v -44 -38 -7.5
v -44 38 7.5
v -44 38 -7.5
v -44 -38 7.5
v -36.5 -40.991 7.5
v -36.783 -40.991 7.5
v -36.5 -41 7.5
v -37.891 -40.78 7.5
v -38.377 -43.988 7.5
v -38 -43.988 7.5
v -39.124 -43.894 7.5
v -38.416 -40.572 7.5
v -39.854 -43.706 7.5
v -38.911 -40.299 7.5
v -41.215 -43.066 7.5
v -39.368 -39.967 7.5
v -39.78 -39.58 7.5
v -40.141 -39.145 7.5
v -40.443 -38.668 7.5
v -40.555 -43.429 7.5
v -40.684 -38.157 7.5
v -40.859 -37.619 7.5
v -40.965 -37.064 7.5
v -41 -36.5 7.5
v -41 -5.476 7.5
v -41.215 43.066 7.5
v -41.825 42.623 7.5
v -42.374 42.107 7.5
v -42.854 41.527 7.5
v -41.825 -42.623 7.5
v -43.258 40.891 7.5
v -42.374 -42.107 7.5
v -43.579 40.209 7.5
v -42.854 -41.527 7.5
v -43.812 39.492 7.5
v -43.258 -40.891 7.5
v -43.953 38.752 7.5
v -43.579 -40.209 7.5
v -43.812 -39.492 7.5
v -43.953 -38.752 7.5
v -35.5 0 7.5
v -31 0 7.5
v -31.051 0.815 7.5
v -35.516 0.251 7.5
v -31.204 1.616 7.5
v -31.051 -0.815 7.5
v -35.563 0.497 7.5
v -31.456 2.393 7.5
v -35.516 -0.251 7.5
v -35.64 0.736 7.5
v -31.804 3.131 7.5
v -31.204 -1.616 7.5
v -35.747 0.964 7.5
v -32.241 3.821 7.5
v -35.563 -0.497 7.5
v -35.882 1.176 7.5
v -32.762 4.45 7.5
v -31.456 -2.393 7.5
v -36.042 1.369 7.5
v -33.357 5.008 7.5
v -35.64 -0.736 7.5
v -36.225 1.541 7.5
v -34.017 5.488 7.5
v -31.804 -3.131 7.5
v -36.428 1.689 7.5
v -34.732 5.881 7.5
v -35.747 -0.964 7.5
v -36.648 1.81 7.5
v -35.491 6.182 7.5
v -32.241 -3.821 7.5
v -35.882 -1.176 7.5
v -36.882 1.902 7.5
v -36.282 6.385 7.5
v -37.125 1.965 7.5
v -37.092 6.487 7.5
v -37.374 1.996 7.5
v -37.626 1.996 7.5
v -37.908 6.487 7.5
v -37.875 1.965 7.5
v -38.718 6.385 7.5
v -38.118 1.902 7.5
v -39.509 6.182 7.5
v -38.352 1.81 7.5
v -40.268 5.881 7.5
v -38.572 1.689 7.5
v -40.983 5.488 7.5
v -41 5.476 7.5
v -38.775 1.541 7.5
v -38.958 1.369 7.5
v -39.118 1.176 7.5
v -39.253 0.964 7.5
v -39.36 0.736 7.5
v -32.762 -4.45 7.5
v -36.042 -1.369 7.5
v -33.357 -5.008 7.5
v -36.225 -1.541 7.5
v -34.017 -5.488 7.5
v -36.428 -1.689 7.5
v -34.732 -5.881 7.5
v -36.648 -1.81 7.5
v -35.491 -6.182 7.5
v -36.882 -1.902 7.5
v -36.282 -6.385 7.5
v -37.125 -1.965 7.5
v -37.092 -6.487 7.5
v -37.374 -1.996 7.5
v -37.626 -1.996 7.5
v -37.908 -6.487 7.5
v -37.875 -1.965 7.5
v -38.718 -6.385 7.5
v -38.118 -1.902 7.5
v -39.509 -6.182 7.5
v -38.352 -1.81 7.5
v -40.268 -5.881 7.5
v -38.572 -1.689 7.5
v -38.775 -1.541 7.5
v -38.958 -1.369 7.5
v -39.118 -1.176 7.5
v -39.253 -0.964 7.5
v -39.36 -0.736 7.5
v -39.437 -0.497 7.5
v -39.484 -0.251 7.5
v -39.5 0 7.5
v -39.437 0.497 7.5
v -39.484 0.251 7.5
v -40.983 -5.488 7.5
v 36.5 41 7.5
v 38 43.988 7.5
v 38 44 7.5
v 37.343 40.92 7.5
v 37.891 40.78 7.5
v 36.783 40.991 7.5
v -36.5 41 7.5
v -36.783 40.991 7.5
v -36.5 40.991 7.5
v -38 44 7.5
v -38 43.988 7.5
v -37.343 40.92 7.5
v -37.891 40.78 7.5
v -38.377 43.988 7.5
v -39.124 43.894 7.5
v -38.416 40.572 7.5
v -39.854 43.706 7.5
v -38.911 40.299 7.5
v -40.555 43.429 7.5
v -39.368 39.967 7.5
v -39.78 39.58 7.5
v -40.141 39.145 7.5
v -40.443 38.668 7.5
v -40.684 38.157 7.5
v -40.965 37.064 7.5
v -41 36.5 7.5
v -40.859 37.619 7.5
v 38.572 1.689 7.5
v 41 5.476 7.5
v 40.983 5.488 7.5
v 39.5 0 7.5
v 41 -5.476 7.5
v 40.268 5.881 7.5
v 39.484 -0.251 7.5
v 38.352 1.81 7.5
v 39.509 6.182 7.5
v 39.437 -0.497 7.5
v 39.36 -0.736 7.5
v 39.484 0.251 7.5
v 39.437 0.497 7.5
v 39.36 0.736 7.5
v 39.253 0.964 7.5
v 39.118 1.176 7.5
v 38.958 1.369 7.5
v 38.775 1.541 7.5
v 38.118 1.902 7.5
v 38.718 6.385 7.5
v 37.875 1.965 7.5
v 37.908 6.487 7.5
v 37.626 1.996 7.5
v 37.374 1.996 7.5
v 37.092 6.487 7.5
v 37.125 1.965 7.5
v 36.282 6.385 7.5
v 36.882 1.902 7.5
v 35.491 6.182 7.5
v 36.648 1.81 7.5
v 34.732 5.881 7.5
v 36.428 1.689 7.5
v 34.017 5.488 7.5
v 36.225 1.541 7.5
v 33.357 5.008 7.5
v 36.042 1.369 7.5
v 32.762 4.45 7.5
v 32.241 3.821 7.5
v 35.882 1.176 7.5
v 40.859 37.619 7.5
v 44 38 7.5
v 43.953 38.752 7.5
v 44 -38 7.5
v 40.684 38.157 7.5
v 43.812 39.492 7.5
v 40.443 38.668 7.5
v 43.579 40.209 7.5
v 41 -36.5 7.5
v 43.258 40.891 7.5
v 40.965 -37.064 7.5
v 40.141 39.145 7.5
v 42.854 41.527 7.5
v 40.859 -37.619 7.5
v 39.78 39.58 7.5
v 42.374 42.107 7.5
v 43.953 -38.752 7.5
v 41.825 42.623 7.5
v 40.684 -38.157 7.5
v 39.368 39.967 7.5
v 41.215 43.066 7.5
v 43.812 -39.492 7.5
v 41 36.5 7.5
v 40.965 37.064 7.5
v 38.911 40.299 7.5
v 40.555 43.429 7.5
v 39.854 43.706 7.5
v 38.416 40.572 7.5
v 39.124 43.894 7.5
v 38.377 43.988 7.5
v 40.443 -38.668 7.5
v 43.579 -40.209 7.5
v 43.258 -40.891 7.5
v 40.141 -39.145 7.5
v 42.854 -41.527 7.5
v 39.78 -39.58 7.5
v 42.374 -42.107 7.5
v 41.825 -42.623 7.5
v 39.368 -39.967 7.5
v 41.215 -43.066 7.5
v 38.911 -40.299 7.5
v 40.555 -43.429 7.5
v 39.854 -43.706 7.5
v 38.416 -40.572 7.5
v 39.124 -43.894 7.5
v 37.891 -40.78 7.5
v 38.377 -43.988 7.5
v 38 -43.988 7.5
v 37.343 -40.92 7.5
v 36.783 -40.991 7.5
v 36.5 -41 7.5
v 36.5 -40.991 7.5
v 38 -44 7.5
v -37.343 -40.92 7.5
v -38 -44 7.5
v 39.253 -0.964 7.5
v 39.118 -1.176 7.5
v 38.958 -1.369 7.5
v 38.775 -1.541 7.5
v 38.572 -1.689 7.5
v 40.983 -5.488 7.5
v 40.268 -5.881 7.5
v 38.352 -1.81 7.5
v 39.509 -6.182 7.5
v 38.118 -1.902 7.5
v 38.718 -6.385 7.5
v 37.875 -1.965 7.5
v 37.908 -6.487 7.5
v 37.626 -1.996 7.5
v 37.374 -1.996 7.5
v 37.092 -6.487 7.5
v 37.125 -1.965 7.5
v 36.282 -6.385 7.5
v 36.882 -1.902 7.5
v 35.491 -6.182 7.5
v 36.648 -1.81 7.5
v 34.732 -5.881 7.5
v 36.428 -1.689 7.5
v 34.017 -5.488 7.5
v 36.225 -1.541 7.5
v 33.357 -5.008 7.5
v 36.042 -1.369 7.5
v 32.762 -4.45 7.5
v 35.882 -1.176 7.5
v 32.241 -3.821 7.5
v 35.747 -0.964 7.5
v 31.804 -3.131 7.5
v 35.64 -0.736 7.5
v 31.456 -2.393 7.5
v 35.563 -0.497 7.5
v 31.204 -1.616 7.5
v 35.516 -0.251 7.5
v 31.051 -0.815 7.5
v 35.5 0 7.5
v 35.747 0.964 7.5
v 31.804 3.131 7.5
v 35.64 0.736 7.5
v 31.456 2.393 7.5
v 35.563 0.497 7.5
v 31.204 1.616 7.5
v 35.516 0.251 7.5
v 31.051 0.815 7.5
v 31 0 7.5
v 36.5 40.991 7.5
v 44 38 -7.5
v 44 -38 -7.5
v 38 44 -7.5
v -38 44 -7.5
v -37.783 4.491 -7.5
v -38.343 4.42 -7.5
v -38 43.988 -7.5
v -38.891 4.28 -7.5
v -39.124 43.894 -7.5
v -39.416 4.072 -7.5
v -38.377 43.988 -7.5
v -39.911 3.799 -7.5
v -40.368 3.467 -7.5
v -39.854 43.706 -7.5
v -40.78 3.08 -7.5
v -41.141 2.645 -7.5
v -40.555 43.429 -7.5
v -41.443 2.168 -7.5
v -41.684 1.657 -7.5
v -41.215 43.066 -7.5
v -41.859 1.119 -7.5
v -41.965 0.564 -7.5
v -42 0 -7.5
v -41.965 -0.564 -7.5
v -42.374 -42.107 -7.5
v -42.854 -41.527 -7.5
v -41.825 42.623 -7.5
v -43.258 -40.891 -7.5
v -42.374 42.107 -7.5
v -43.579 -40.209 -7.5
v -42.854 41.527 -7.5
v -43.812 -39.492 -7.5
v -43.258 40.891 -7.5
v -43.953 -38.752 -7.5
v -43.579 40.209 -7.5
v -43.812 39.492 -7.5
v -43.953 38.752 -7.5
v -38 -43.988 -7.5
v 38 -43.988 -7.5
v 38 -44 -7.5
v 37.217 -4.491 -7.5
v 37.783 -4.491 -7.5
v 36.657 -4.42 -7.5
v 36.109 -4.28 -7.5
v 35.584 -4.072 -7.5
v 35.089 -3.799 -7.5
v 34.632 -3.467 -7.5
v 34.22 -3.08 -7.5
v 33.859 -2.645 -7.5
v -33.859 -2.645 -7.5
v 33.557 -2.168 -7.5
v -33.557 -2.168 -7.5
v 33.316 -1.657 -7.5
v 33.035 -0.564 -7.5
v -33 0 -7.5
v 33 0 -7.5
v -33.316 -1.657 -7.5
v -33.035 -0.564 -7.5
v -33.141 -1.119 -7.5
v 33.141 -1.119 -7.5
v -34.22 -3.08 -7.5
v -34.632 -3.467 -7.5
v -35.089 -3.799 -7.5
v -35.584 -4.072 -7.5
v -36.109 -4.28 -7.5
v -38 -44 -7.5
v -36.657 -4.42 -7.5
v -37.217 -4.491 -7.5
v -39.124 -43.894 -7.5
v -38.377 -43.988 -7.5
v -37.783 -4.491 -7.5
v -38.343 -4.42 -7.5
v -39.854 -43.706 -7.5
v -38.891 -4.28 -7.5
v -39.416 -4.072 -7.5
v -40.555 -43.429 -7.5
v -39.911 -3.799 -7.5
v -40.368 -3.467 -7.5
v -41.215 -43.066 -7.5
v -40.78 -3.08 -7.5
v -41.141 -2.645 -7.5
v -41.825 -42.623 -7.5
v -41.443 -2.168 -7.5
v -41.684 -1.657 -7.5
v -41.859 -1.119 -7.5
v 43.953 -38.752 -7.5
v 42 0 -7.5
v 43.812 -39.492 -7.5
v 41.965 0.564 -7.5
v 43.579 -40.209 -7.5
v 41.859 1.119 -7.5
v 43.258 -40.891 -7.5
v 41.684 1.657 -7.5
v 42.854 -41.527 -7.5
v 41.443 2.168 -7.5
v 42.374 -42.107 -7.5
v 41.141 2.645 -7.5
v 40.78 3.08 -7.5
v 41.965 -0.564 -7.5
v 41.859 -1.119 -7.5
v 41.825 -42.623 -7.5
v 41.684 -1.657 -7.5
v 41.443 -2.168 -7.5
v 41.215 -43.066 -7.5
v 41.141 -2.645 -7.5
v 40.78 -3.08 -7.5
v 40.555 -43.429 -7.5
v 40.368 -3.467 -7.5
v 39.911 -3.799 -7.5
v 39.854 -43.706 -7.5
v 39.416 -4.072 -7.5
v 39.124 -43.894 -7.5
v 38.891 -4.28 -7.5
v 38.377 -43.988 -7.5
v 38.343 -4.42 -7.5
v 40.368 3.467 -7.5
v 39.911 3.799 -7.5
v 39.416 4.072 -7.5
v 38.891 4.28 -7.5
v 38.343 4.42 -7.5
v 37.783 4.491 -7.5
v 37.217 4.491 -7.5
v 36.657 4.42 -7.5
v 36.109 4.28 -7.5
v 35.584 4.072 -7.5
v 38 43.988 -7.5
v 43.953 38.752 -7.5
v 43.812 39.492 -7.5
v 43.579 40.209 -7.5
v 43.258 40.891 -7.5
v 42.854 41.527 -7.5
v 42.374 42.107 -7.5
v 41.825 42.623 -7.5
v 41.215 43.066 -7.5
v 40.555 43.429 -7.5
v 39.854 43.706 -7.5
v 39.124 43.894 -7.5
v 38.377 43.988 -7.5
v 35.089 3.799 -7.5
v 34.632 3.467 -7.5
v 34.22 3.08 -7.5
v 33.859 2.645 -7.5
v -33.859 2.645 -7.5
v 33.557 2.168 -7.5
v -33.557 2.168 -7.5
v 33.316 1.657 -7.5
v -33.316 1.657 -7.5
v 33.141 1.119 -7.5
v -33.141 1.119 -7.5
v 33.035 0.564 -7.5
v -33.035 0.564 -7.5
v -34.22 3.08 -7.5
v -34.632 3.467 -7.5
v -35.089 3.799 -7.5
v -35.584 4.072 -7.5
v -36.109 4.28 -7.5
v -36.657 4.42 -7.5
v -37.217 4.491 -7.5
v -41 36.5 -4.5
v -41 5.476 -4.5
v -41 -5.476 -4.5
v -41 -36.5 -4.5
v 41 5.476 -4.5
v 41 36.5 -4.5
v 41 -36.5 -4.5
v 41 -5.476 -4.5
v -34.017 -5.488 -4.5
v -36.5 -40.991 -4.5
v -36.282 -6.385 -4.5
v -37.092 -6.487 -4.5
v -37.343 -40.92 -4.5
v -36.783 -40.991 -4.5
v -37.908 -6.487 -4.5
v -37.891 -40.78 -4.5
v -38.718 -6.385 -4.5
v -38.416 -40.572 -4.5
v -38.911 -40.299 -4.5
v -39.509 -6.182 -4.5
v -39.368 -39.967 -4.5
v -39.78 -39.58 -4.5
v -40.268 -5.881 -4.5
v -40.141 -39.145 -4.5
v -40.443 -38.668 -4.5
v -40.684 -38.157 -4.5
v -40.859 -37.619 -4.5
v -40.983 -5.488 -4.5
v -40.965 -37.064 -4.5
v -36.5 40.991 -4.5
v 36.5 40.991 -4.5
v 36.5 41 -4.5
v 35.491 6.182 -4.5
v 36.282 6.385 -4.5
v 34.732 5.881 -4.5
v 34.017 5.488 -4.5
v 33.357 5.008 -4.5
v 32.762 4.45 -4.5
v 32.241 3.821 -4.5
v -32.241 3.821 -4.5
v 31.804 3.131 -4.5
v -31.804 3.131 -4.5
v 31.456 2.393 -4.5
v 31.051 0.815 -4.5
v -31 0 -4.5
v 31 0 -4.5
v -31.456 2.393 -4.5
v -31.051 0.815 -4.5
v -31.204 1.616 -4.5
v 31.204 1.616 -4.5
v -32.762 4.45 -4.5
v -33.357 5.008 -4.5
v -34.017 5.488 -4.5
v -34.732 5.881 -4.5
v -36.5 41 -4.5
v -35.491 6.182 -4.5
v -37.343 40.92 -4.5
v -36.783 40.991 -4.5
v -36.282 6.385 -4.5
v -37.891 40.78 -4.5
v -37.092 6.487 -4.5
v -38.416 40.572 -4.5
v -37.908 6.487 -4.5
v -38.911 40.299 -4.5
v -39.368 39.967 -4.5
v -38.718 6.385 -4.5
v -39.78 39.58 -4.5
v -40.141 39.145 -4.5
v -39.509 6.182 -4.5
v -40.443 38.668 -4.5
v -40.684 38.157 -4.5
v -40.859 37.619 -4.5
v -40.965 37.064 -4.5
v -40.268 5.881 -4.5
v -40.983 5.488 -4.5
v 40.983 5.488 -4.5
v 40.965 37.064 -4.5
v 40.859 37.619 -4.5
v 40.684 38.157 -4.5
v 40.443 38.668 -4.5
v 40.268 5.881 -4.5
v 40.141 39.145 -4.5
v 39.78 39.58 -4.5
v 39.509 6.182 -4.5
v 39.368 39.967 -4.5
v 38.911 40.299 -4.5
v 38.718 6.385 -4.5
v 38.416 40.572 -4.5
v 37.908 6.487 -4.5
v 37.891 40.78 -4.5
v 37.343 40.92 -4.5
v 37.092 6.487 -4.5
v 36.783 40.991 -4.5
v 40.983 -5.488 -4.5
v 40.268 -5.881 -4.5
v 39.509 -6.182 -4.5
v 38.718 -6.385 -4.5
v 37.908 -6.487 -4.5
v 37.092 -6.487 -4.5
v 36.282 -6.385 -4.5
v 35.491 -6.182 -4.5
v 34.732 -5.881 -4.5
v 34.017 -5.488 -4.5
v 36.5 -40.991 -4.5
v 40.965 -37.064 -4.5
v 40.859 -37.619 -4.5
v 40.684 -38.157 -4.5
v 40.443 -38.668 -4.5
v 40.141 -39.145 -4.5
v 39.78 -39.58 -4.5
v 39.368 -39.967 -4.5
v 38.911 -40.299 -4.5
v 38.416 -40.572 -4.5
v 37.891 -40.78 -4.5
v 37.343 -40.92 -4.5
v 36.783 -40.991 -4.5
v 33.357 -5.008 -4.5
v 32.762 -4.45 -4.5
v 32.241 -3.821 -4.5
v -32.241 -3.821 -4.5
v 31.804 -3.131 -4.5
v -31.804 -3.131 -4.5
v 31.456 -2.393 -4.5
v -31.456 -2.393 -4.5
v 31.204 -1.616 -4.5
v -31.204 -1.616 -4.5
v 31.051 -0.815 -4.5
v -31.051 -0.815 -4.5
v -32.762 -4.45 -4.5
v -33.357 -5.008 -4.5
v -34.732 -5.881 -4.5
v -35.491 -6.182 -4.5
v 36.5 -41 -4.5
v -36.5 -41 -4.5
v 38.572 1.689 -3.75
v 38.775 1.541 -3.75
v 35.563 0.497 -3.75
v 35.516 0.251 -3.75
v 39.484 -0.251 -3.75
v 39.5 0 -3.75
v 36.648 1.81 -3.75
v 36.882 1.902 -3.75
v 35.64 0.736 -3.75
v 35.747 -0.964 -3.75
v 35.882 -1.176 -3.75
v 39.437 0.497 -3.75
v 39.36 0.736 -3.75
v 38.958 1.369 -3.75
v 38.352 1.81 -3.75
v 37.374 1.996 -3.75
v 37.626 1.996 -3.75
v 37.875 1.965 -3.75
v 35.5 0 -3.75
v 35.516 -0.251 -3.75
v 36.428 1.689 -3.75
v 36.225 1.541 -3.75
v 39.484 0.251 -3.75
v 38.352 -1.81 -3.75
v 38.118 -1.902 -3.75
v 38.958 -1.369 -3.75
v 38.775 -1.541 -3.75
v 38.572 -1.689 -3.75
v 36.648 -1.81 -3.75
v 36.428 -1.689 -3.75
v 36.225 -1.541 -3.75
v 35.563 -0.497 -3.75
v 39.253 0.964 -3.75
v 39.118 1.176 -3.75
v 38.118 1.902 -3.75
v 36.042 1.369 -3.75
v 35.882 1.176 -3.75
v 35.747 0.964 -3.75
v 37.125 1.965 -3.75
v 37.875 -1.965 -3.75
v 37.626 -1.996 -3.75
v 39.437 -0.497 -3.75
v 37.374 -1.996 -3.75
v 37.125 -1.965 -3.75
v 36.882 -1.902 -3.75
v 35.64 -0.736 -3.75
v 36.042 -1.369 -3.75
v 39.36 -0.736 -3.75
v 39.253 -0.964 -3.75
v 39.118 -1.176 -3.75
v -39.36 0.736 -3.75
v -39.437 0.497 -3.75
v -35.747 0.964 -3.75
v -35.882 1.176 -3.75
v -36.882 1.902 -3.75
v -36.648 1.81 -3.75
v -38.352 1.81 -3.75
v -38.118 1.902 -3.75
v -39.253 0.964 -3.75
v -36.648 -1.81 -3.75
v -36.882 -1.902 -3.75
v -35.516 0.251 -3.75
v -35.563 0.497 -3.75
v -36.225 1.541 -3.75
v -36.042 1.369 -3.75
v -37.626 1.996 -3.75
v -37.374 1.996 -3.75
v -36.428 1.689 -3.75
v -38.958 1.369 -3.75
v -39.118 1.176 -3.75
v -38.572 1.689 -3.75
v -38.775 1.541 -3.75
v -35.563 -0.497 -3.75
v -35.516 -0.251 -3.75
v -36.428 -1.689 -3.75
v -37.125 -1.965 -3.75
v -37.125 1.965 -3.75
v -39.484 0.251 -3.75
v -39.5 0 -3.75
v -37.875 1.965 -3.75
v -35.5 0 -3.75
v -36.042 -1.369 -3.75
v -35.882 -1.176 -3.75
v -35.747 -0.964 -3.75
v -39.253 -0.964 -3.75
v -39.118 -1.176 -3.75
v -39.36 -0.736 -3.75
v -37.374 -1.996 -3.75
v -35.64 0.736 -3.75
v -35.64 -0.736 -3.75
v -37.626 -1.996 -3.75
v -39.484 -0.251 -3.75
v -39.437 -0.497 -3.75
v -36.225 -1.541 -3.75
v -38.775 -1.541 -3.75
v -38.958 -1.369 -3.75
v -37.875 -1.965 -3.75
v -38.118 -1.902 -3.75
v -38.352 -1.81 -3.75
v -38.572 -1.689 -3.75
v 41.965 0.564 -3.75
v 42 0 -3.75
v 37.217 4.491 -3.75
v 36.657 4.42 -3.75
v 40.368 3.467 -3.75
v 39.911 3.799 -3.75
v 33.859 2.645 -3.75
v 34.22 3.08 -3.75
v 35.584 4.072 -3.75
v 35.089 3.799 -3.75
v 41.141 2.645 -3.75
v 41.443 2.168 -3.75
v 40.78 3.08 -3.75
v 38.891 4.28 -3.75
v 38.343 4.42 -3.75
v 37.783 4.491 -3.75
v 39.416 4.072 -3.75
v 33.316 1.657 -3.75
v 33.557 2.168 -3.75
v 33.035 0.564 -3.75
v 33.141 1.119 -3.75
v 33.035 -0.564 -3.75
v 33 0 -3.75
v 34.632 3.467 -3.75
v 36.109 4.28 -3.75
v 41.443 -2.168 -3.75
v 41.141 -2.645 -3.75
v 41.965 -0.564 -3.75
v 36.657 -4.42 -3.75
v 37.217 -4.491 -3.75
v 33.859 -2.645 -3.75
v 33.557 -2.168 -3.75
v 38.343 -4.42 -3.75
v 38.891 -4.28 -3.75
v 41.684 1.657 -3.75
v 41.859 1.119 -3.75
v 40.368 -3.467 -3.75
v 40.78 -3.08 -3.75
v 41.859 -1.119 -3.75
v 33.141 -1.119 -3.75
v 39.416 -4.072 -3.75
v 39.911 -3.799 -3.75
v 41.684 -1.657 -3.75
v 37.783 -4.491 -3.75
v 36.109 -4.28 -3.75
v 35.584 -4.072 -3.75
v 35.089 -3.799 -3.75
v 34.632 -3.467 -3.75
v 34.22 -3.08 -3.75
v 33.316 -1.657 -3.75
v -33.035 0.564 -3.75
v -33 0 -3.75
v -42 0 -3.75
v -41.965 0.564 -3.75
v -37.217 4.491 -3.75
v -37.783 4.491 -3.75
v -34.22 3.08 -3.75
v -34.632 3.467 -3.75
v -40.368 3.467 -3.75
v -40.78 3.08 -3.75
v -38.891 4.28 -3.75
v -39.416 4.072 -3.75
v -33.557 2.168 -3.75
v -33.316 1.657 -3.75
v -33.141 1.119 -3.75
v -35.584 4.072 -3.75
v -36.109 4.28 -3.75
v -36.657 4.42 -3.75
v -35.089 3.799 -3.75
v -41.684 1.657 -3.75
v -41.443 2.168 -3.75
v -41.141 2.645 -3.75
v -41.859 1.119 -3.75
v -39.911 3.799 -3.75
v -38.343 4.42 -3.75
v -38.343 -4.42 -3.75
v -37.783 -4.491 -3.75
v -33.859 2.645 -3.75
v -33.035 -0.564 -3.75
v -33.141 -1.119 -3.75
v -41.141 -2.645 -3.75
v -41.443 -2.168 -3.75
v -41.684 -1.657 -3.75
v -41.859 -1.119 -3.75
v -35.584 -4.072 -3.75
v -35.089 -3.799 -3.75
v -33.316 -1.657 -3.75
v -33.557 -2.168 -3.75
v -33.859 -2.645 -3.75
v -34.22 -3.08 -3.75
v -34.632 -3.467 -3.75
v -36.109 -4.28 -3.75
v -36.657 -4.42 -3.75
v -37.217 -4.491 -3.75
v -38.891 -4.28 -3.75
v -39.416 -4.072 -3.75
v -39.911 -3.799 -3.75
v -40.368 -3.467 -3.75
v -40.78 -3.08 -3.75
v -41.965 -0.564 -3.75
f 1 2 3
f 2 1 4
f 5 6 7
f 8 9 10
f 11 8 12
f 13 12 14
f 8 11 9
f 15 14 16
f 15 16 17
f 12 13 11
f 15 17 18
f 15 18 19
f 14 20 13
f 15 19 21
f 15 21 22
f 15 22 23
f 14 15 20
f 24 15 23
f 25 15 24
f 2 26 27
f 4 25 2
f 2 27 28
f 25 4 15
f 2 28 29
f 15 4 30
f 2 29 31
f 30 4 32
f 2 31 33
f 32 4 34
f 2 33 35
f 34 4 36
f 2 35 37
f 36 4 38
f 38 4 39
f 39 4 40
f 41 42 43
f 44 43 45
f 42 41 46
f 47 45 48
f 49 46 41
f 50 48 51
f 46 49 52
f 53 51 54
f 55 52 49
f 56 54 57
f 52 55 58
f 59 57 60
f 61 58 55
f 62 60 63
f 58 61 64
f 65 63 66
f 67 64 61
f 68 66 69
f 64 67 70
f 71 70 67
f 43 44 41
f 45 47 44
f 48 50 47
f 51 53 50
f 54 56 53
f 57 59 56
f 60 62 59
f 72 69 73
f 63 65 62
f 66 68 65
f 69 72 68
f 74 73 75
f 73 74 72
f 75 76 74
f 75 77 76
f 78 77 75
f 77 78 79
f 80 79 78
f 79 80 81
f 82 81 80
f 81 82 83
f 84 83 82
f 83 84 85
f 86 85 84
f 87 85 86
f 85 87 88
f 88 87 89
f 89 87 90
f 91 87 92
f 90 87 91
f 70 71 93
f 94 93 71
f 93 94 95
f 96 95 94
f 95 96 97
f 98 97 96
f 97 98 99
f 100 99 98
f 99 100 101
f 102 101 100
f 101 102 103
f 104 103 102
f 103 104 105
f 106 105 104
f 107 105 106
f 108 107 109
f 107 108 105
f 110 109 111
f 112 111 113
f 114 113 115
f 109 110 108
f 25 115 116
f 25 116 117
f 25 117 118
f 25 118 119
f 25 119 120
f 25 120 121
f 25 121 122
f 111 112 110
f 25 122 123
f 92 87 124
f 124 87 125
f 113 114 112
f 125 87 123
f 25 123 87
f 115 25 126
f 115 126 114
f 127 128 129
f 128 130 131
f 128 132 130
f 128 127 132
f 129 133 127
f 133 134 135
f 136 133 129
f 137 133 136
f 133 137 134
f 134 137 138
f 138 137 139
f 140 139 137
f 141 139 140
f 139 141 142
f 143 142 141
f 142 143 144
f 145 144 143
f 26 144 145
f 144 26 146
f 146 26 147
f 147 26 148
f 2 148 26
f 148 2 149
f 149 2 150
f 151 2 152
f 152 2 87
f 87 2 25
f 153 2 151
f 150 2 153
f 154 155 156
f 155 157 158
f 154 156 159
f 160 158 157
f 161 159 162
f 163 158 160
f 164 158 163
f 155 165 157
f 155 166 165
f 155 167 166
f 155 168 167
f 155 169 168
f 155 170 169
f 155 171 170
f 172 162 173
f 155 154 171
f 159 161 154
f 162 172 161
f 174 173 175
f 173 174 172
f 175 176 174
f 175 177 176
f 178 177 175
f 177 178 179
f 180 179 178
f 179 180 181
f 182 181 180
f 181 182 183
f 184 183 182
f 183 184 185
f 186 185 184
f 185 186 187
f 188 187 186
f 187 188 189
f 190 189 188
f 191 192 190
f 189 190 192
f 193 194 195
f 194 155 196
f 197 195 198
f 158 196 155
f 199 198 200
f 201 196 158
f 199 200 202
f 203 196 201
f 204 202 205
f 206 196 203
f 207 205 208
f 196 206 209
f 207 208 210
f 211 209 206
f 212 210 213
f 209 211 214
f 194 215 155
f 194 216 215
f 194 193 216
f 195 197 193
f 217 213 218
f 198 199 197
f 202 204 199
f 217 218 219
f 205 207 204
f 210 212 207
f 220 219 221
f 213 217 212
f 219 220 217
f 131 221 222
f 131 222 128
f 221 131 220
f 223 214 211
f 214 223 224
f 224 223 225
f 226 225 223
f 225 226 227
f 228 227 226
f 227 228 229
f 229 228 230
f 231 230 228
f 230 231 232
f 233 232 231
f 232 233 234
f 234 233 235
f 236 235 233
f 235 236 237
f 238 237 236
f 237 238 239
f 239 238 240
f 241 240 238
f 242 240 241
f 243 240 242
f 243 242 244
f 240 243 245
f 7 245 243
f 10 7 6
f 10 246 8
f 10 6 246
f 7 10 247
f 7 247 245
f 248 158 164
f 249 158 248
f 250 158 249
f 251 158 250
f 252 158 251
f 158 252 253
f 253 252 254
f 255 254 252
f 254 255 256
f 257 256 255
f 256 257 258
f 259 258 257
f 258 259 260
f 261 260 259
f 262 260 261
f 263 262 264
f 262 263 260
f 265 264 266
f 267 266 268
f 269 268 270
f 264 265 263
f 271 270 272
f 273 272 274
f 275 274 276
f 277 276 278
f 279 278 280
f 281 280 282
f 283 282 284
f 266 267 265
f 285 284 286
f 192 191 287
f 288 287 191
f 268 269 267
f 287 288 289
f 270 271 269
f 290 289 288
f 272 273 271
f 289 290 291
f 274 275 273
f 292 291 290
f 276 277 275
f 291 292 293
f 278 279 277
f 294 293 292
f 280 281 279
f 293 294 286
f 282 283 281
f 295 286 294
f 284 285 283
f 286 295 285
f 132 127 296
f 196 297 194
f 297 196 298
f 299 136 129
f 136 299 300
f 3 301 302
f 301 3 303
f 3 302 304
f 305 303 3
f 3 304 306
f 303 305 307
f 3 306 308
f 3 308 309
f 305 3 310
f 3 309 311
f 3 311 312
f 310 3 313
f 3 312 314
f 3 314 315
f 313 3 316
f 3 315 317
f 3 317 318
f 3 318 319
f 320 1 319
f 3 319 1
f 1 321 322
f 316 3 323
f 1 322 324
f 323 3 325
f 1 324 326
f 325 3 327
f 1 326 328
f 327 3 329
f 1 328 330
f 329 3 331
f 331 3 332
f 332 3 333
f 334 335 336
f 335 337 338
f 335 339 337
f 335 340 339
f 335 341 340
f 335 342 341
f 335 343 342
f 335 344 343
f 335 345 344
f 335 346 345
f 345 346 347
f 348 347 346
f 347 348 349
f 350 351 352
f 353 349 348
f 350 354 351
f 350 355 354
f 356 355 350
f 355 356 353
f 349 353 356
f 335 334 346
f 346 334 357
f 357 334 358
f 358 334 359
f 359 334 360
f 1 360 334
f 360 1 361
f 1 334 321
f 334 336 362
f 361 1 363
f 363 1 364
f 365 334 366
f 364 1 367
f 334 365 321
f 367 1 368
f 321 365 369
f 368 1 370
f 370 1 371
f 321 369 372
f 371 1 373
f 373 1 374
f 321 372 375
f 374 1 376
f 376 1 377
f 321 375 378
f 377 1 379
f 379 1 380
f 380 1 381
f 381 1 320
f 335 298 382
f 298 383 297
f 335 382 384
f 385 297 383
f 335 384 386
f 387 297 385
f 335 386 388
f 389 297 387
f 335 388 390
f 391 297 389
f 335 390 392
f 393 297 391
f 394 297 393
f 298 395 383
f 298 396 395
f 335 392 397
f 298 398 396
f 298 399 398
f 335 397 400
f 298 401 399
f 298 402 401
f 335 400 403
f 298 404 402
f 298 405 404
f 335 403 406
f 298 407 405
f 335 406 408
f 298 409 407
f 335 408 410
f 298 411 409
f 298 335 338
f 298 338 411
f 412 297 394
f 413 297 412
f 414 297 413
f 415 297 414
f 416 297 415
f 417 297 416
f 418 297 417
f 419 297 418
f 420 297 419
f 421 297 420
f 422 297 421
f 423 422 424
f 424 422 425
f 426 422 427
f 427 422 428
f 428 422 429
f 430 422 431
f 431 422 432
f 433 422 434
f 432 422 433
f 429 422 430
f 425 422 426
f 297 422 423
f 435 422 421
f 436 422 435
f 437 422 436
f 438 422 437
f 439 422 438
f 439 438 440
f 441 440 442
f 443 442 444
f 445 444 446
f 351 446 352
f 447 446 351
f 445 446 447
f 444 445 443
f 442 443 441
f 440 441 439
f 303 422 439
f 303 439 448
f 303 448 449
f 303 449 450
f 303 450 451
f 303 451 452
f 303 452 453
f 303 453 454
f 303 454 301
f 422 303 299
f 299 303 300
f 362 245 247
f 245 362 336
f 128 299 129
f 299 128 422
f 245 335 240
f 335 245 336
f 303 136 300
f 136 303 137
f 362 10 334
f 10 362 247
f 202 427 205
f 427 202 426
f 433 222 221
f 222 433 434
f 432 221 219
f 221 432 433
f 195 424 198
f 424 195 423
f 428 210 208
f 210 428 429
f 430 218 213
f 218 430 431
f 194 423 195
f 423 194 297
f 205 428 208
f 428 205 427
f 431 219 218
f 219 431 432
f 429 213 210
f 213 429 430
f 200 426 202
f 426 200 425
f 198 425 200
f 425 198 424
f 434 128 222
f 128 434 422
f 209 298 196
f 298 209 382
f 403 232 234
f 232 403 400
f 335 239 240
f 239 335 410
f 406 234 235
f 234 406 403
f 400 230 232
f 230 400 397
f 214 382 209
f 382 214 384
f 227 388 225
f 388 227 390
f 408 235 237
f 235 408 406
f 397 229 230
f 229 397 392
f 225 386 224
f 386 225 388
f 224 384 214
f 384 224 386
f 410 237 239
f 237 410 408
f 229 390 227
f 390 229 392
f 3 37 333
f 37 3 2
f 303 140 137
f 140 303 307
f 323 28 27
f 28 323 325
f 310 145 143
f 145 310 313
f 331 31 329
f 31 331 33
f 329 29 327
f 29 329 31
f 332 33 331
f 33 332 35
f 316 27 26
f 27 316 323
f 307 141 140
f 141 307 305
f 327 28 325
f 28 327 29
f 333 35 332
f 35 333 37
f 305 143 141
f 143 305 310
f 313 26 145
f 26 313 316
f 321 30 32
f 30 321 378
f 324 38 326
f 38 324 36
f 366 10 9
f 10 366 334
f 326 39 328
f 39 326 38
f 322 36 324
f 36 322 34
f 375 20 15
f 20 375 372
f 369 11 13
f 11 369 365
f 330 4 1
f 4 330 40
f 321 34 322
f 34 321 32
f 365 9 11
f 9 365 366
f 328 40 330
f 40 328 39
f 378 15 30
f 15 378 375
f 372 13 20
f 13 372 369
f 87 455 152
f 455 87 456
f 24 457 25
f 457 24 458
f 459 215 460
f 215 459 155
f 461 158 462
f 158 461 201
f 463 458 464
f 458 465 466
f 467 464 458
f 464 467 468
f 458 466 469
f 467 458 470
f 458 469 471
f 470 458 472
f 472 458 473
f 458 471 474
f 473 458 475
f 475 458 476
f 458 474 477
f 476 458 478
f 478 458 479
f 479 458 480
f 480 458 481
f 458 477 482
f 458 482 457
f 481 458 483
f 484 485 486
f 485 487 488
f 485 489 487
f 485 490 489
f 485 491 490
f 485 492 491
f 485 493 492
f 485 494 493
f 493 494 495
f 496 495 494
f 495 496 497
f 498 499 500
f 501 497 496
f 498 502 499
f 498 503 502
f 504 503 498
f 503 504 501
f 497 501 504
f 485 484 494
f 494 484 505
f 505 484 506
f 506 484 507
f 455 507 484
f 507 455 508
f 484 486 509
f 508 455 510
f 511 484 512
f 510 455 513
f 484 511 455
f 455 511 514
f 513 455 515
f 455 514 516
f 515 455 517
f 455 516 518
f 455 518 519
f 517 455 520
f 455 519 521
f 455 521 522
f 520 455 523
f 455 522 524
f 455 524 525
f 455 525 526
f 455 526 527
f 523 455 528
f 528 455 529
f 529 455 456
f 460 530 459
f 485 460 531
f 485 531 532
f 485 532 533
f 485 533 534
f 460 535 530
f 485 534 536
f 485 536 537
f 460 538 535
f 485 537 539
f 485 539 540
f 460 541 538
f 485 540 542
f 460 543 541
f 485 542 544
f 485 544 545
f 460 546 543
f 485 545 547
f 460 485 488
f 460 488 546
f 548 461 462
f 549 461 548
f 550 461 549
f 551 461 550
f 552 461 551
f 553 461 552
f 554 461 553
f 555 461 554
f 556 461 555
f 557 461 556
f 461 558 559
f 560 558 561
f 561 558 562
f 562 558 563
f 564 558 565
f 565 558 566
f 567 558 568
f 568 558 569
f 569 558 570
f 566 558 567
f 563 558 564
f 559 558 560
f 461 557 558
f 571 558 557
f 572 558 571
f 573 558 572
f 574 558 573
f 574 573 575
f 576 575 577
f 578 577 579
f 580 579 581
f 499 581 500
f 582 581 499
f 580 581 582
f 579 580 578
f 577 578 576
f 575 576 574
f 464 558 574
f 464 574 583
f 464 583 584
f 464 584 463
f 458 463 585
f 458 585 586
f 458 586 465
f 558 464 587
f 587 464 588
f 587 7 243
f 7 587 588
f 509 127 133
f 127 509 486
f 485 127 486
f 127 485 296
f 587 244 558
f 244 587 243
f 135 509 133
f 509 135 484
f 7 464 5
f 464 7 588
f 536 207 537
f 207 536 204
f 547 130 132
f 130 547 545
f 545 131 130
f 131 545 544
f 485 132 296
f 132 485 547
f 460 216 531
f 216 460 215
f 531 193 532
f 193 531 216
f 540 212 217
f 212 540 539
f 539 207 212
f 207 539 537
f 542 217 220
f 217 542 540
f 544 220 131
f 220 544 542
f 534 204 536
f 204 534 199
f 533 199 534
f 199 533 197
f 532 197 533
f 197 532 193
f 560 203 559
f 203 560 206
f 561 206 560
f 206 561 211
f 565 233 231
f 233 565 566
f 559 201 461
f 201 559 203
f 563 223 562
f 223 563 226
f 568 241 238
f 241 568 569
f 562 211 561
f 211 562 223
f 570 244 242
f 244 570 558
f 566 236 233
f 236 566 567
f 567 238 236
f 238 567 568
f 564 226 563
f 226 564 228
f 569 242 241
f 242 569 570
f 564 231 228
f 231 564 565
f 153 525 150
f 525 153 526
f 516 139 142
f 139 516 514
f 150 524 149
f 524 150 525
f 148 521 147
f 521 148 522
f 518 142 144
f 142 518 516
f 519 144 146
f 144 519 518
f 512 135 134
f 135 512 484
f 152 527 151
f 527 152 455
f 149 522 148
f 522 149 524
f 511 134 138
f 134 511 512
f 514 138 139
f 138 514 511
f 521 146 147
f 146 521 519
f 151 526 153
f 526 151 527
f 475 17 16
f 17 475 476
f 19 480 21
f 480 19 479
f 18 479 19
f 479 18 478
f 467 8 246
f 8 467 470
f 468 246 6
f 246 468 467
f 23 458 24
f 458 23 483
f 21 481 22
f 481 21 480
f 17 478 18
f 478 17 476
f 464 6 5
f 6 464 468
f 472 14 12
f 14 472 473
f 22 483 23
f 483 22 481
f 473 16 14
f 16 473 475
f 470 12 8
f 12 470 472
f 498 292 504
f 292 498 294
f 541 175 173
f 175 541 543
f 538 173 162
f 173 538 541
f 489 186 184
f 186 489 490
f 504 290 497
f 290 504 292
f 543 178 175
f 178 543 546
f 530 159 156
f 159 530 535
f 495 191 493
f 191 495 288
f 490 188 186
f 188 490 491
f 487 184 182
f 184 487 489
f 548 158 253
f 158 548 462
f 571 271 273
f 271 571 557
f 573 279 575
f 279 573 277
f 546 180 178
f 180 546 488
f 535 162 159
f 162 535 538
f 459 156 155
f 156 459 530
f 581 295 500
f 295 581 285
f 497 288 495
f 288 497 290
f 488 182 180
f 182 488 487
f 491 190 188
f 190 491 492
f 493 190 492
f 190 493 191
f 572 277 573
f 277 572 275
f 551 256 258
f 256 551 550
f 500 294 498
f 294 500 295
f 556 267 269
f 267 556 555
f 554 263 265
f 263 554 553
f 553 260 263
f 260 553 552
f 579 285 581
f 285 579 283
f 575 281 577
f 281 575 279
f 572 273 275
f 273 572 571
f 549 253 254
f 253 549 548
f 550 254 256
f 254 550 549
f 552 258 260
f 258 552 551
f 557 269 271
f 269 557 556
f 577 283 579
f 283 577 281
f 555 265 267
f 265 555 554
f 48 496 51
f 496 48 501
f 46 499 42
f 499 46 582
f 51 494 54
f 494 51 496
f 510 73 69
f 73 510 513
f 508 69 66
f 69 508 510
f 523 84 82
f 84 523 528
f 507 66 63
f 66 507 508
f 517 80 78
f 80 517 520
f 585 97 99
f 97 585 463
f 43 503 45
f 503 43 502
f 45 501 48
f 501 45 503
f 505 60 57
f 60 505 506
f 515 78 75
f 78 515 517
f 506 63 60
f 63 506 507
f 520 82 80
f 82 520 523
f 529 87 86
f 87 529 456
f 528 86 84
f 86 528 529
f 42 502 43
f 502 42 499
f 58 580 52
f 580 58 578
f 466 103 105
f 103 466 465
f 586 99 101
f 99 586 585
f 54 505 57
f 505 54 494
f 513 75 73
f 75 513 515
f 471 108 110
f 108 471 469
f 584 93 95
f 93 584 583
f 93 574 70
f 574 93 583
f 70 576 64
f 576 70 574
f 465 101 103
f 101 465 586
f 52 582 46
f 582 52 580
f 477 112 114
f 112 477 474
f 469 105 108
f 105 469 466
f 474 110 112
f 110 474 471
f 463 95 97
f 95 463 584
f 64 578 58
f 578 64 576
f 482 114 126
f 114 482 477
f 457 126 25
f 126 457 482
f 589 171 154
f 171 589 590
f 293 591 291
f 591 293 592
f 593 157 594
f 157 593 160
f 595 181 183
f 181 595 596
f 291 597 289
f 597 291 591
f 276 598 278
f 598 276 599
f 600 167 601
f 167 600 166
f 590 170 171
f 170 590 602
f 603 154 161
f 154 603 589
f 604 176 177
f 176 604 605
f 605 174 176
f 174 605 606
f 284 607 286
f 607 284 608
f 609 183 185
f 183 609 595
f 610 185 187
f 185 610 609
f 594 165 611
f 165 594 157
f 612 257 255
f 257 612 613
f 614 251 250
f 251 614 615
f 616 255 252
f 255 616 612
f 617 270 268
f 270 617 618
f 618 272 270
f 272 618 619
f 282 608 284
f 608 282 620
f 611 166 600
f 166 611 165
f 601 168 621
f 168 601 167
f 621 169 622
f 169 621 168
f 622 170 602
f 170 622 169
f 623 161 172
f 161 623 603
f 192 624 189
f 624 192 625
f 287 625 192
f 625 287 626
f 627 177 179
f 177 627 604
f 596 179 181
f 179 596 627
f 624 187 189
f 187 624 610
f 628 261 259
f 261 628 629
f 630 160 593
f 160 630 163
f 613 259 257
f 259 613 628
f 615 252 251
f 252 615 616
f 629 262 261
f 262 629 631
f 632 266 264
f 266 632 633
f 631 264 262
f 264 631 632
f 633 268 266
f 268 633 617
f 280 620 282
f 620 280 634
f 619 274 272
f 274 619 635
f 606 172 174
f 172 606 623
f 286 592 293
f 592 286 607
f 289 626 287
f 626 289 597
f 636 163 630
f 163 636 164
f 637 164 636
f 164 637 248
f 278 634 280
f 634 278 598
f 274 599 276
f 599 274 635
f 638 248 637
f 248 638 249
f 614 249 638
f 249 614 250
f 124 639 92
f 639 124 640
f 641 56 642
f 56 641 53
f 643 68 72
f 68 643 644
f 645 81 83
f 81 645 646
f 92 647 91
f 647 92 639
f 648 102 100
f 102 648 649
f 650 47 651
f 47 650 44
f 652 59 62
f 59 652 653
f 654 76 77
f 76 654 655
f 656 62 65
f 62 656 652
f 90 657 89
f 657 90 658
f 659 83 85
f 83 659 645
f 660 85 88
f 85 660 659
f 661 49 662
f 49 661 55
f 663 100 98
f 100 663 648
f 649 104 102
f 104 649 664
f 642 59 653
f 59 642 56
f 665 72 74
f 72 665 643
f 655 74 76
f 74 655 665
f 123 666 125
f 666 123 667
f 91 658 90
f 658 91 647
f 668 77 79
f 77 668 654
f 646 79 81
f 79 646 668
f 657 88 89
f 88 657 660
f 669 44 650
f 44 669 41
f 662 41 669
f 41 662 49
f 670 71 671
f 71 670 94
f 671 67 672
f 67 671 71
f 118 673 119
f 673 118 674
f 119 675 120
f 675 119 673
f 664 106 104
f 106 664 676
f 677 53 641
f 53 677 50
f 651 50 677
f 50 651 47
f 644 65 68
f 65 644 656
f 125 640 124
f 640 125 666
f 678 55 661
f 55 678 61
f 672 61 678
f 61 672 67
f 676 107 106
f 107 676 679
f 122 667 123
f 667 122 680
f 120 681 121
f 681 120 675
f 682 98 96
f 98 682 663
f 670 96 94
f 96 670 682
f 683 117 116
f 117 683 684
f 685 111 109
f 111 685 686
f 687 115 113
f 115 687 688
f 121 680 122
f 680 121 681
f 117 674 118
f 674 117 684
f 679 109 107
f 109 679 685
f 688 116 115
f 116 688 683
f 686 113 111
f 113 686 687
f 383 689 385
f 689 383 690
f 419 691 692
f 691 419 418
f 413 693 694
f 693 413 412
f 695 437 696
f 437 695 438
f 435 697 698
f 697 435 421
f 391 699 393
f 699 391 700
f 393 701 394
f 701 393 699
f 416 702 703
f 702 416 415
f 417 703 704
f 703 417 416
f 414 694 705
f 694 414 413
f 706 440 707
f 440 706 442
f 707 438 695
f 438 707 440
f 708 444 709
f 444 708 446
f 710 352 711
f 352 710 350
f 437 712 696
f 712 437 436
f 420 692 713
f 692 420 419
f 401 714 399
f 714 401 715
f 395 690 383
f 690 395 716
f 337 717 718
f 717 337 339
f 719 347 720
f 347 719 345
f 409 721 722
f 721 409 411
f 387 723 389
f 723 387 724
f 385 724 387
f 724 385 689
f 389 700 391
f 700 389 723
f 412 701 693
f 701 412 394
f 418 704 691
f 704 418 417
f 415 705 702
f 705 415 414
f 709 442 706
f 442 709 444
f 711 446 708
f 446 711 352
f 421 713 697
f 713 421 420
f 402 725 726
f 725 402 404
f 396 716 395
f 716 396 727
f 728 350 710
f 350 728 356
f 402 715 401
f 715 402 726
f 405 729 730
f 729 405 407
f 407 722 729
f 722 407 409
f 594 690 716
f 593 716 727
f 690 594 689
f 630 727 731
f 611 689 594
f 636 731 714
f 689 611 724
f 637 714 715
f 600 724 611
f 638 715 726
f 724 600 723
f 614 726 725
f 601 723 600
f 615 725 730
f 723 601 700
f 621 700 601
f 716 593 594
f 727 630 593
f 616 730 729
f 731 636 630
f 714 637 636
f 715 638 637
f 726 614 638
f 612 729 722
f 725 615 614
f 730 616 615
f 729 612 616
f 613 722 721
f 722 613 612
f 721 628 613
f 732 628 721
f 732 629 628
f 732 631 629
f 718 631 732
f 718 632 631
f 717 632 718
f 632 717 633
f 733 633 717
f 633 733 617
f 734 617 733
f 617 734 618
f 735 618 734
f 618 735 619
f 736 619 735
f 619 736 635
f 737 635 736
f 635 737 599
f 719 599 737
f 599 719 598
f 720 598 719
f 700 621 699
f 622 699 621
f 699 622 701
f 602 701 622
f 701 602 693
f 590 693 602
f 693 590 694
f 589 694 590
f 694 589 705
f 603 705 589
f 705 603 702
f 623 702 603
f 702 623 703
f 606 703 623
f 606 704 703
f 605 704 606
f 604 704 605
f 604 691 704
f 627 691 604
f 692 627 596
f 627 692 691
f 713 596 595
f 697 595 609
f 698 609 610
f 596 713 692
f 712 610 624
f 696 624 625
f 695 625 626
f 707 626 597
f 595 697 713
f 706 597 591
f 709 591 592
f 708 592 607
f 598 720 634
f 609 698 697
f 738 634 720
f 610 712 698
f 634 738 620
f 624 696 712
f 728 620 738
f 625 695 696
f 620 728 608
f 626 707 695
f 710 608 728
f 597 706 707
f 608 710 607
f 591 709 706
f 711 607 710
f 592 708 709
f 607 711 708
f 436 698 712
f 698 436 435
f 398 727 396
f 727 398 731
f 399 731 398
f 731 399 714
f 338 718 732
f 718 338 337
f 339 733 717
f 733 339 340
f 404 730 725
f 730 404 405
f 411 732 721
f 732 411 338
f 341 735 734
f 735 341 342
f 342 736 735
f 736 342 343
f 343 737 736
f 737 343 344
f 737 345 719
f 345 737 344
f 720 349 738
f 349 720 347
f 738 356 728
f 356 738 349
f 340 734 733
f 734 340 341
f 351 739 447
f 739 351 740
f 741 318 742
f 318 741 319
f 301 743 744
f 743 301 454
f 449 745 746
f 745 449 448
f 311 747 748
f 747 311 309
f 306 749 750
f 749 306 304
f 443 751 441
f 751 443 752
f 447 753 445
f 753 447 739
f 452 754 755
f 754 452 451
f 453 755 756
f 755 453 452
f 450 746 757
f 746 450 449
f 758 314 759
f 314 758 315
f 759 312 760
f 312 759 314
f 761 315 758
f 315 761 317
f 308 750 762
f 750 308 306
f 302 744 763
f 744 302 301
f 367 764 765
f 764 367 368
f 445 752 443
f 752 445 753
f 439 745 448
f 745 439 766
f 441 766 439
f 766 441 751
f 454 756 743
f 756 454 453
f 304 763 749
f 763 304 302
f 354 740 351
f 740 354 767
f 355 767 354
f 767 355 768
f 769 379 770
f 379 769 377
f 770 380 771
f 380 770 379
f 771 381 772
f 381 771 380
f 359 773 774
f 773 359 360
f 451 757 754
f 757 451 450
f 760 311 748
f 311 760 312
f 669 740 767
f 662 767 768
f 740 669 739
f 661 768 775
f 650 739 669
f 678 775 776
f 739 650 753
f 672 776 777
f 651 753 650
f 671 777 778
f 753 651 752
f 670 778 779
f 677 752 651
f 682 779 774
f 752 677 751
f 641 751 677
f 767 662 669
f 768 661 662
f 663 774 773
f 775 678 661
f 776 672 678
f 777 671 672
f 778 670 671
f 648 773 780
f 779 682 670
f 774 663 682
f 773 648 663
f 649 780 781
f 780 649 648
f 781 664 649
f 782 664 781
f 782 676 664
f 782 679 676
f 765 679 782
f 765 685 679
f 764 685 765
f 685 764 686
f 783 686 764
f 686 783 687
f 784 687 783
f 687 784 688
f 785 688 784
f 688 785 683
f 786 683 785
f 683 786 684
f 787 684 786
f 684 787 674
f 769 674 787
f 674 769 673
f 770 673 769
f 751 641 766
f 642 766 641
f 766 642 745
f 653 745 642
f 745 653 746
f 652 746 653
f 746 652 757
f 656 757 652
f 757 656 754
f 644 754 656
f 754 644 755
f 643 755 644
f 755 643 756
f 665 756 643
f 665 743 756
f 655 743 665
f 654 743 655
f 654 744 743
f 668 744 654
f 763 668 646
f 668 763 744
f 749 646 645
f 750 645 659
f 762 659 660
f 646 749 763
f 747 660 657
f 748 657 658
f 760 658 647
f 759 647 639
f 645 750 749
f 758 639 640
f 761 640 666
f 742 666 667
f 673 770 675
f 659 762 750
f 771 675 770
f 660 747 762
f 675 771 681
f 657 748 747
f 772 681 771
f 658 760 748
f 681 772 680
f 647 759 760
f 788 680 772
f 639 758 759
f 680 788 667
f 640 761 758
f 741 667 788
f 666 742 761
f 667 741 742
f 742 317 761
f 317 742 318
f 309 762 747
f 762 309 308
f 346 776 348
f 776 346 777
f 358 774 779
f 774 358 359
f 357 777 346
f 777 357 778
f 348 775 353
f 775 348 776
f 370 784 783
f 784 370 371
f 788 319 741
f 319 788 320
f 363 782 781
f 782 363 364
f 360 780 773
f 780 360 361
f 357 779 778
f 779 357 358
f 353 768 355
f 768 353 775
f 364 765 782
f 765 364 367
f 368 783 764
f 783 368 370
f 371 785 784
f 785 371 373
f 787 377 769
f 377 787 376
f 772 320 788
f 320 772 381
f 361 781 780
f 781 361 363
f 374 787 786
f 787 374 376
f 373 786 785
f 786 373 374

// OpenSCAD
w = 88;
h = 88;
d = 15;
sh=8; //screw head
wall=3;
sct=75; //screw centres
sd=4; //screw dia
cd=12; //corner dia

//Definition of circle angular resolution
res        = 50;   


difference () {

 union(){  
   difference(){
   roundcornerplate(w,h,d,cd);
   translate([0,0,wall]) roundcornerplate(w-2*wall,h-2*wall,d-2*wall,cd-wall);
   }
   translate([sct/2,0,0]) rotate([0,0,0]) cylinder(h=d,r=wall+sh/2-0.5,center=true,$fn=res);
   translate([-sct/2,0,0]) rotate([0,0,0]) cylinder(h=d,r=wall+sh/2-0.5,center=true,$fn=res);
 }

  //screw holes
   translate([sct/2,0,0]) rotate([0,0,0]) cylinder(h=d+2,r=sd/2,center=true,$fn=res);
   translate([-sct/2,0,0]) rotate([0,0,0]) cylinder(h=d+2,r=sd/2,center=true,$fn=res);

  //screw heads
   translate([sct/2,0,-d/2]) rotate([0,0,0]) cylinder(h=d/2,r=sh/2+0.5,center=true,$fn=res);
   translate([-sct/2,0,-d/2]) rotate([0,0,0]) cylinder(h=d/2,r=sh/2+0.5,center=true,$fn=res);


}

module roundcornerplate (wi,ht,de,rad) {
   union () {

     difference(){
       cube([wi,ht,d],center=true);
       translate([wi/2,ht/2,0]) cube([rad,rad,d+2],center=true);  //remove corners
       translate([wi/2,-ht/2,0]) cube([rad,rad,d+2],center=true);  
       translate([-wi/2,ht/2,0]) cube([rad,rad,d+2],center=true);  
       translate([-wi/2,-ht/2,0]) cube([rad,rad,d+2],center=true);  
     };

     //replace corners with round
     translate([wi/2-rad/2,ht/2-rad/2,0]) rotate([0,0,0]) cylinder(h=d,r=rad/2,center=true,$fn=res);
     translate([wi/2-rad/2,-(ht/2-rad/2),0]) rotate([0,0,0]) cylinder(h=d,r=rad/2,center=true,$fn=res);
     translate([-(wi/2-rad/2),ht/2-rad/2,0]) rotate([0,0,0]) cylinder(h=d,r=rad/2,center=true,$fn=res);
     translate([-(wi/2-rad/2),-(ht/2-rad/2),0]) rotate([0,0,0]) cylinder(h=d,r=rad/2,center=true,$fn=res);
	}
    
}
